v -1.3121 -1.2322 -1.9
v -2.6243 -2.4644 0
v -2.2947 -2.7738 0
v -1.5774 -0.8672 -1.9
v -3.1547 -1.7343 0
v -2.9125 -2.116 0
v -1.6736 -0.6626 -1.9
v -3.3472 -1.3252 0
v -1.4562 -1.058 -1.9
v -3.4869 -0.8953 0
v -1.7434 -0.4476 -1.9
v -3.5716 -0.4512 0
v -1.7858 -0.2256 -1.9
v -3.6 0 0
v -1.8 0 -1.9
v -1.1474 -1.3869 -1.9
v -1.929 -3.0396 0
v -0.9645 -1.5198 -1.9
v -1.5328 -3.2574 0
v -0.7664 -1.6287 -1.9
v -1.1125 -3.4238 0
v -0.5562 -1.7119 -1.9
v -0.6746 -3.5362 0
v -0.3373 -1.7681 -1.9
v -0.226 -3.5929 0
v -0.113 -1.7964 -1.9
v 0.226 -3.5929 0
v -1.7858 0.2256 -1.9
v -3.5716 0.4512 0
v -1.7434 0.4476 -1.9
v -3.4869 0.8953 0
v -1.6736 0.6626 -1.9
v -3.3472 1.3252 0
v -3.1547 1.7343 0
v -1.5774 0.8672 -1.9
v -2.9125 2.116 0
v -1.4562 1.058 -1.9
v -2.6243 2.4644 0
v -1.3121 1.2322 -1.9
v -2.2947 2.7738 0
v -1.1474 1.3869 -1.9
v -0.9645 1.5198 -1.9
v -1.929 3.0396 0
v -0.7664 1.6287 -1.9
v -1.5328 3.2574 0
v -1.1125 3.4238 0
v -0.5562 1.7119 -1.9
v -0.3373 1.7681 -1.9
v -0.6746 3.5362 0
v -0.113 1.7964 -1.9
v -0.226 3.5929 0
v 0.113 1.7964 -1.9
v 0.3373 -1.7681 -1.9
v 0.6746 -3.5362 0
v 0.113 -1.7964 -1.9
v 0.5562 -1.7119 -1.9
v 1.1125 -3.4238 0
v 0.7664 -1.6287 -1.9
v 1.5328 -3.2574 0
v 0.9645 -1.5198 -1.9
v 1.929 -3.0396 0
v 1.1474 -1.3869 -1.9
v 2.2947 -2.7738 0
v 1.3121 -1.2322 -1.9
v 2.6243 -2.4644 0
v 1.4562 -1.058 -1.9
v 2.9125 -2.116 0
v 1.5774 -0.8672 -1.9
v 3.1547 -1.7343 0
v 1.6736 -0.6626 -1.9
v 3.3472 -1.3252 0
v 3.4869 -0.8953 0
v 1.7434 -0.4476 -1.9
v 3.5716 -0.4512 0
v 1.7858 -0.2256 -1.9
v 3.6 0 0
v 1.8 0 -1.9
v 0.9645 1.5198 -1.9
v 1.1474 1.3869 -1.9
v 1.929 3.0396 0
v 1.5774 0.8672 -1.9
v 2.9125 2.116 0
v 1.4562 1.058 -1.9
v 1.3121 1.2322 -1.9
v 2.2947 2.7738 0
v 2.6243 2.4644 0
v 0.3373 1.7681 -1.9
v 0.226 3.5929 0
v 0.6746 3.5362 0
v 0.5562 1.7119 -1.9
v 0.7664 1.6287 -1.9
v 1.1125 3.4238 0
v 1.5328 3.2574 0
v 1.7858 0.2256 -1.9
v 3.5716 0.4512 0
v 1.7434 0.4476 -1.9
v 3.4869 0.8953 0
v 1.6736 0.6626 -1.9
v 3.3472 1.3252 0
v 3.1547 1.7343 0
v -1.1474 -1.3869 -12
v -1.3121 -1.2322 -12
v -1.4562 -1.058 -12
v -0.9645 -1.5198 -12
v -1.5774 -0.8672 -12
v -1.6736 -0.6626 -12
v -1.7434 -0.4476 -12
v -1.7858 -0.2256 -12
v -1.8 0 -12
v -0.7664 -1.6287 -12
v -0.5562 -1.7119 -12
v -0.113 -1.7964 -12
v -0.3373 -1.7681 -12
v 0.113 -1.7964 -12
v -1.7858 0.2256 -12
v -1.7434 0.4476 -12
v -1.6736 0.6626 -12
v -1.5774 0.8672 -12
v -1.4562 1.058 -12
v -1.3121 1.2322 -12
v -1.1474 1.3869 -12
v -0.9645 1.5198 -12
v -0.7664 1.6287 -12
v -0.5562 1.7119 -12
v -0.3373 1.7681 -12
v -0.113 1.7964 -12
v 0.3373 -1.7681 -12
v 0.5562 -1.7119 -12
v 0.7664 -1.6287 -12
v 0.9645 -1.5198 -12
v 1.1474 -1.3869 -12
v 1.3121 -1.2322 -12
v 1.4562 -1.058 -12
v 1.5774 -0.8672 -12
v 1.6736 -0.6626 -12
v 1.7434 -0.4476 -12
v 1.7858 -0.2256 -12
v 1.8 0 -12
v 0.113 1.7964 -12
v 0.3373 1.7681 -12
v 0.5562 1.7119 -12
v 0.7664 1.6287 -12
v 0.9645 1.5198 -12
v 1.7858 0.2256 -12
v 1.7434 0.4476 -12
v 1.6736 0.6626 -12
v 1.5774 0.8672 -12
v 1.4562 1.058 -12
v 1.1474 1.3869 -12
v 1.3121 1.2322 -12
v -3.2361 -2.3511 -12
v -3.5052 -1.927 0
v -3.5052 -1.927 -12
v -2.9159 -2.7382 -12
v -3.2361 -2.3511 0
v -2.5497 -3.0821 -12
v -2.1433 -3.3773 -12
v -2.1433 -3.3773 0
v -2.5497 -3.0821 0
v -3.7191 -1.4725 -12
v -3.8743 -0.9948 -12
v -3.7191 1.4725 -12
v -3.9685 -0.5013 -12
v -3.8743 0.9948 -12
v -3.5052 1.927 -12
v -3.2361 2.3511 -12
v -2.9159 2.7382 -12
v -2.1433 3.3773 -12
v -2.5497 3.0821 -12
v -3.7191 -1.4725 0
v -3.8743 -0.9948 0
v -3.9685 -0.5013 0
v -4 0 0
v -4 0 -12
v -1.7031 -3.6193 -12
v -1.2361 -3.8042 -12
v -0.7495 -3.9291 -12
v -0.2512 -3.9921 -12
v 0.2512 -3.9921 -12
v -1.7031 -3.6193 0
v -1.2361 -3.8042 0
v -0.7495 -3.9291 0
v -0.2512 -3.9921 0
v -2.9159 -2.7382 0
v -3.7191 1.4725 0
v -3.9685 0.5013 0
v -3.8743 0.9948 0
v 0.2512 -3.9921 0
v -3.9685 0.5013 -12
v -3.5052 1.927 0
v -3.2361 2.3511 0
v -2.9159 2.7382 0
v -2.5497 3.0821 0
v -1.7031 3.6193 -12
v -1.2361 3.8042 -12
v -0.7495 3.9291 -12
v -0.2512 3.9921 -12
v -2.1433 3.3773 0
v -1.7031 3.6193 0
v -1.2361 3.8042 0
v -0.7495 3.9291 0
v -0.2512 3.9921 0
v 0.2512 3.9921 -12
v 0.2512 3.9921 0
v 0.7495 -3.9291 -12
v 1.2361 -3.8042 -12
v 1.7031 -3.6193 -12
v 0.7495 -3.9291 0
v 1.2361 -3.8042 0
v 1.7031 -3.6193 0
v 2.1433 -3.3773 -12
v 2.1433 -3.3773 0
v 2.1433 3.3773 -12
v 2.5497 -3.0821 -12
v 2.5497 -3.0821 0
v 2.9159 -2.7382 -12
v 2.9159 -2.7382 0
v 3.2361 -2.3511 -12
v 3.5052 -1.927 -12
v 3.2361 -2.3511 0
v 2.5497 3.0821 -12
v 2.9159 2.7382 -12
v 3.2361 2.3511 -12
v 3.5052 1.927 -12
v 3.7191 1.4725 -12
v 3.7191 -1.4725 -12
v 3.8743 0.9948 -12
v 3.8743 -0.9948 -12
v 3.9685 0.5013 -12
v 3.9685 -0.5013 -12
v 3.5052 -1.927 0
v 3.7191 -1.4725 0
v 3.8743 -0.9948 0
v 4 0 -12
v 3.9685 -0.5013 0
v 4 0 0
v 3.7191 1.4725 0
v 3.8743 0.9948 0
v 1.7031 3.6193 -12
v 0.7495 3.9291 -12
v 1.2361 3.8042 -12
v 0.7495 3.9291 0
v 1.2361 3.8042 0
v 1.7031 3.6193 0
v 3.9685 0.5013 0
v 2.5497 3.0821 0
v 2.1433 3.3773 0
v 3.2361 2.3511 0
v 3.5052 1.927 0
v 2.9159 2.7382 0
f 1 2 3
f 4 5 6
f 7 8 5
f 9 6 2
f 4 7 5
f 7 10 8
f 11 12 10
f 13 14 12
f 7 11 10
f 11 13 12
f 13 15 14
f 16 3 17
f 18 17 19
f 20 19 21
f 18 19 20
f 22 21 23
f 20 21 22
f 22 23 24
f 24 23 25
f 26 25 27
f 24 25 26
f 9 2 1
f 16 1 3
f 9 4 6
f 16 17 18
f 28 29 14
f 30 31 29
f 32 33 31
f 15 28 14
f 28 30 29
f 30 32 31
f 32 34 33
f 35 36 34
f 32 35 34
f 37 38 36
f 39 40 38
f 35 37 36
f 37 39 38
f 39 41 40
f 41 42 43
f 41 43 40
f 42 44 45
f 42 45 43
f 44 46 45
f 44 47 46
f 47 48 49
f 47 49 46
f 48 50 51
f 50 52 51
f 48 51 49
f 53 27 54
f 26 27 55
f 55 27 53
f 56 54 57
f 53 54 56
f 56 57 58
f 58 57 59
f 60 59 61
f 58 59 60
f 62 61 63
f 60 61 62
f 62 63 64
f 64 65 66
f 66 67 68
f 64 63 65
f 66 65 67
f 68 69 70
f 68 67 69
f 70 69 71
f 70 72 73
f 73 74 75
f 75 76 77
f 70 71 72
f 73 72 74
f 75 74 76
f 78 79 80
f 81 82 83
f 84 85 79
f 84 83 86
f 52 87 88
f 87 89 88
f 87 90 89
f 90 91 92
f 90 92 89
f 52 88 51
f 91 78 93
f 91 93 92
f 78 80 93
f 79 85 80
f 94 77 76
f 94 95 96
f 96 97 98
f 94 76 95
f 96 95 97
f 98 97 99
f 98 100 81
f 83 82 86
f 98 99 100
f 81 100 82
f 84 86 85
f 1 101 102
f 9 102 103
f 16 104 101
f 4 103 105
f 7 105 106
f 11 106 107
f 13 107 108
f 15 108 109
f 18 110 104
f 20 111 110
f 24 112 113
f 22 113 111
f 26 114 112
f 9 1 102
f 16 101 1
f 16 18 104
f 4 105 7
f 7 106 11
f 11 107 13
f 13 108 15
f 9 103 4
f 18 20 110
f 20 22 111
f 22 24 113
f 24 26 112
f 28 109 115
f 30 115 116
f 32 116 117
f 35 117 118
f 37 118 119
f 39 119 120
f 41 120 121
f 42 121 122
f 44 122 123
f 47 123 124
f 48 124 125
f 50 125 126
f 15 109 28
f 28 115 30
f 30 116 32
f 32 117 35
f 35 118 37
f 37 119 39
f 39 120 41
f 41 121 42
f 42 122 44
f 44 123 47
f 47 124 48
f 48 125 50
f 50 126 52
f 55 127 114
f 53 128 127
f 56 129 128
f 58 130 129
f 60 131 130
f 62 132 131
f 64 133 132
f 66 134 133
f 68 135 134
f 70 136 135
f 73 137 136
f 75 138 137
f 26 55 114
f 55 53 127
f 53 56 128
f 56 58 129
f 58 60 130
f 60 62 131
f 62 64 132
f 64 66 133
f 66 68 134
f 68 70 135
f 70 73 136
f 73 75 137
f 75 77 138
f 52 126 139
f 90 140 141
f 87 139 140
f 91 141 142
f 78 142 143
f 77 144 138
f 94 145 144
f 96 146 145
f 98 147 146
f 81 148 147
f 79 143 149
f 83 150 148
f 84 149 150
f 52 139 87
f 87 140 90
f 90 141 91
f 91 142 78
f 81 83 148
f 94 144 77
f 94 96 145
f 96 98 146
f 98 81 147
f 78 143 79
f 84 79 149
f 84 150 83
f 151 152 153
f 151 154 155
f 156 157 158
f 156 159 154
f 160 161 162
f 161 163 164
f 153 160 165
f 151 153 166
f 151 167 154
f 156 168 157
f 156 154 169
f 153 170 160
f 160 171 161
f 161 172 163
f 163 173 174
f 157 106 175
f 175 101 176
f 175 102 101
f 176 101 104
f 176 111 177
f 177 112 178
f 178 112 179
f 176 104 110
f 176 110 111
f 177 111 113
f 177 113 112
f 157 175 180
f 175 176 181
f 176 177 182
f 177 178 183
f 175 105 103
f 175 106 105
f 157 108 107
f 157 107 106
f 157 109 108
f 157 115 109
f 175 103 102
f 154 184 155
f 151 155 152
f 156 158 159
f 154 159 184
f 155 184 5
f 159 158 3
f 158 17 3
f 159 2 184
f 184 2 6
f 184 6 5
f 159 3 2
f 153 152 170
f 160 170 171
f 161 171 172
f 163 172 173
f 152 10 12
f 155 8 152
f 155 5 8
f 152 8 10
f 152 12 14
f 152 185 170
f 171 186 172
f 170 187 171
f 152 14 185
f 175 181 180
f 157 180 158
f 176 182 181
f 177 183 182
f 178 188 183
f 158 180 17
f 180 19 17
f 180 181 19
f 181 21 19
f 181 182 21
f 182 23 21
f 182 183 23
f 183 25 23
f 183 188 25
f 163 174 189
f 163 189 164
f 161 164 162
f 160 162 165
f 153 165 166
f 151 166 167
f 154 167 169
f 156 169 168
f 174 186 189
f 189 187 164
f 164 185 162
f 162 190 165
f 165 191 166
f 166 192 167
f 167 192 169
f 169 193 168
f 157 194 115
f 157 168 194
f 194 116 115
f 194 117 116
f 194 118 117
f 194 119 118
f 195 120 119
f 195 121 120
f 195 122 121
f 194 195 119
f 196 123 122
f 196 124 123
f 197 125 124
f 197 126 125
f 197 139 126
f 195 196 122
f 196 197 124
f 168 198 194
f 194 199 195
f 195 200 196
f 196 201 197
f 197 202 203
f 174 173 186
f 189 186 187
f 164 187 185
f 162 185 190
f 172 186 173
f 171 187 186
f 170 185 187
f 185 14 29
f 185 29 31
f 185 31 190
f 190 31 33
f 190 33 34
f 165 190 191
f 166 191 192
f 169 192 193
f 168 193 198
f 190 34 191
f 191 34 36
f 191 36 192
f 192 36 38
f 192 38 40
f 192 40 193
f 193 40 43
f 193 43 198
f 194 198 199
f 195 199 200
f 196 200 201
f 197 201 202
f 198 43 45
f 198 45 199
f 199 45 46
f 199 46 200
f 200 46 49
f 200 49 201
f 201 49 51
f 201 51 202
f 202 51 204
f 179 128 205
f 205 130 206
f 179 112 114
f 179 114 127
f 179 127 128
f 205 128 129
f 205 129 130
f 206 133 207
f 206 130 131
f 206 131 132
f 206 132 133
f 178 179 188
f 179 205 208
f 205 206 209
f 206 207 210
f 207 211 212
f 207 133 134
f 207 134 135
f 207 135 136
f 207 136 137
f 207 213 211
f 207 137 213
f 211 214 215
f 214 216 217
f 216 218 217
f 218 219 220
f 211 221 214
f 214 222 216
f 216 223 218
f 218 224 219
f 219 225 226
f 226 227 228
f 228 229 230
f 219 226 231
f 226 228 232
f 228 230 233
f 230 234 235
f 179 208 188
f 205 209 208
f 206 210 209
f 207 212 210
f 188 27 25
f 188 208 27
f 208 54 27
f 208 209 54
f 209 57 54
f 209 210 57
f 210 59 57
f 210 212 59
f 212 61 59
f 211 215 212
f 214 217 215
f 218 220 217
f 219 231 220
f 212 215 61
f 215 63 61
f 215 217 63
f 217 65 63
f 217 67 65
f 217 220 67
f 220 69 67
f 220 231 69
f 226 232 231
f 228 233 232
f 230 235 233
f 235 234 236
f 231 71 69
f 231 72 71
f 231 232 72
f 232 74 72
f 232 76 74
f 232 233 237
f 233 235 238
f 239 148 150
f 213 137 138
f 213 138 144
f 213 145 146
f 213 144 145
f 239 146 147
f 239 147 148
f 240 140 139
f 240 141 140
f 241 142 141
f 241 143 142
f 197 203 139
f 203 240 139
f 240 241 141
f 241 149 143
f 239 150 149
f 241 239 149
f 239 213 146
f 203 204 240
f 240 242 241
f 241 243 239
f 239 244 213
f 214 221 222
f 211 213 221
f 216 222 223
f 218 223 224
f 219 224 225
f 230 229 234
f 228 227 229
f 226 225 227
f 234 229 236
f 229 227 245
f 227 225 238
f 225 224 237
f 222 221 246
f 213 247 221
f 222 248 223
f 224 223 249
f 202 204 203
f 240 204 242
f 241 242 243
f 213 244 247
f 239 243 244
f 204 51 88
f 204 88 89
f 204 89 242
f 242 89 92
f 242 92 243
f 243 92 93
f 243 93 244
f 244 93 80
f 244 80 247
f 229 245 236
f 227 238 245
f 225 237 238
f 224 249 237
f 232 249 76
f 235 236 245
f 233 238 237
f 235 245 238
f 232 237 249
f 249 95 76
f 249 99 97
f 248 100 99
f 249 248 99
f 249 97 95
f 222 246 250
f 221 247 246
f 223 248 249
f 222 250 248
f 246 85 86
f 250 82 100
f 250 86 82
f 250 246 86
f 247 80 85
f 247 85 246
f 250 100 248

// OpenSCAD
$fn = 50;

difference() {
	union() {
		translate(v = [0, 0, -12.0]) {
			cylinder(h = 12, r = 4.0);
		}
	}
	union() {
		translate(v = [0, 0, 0]) {
			rotate(a = [0, 0, 0]) {
				difference() {
					union() {
						translate(v = [0, 0, -15.0]) {
							cylinder(h = 15, r = 1.5);
						}
						translate(v = [0, 0, -1.9]) {
							cylinder(h = 1.9, r1 = 1.8, r2 = 3.6);
						}
						translate(v = [0, 0, -15.0]) {
							cylinder(h = 15, r = 1.8);
						}
						translate(v = [0, 0, -15.0]) {
							cylinder(h = 15, r = 1.5);
						}
					}
					union();
				}
			}
		}
	}
}
